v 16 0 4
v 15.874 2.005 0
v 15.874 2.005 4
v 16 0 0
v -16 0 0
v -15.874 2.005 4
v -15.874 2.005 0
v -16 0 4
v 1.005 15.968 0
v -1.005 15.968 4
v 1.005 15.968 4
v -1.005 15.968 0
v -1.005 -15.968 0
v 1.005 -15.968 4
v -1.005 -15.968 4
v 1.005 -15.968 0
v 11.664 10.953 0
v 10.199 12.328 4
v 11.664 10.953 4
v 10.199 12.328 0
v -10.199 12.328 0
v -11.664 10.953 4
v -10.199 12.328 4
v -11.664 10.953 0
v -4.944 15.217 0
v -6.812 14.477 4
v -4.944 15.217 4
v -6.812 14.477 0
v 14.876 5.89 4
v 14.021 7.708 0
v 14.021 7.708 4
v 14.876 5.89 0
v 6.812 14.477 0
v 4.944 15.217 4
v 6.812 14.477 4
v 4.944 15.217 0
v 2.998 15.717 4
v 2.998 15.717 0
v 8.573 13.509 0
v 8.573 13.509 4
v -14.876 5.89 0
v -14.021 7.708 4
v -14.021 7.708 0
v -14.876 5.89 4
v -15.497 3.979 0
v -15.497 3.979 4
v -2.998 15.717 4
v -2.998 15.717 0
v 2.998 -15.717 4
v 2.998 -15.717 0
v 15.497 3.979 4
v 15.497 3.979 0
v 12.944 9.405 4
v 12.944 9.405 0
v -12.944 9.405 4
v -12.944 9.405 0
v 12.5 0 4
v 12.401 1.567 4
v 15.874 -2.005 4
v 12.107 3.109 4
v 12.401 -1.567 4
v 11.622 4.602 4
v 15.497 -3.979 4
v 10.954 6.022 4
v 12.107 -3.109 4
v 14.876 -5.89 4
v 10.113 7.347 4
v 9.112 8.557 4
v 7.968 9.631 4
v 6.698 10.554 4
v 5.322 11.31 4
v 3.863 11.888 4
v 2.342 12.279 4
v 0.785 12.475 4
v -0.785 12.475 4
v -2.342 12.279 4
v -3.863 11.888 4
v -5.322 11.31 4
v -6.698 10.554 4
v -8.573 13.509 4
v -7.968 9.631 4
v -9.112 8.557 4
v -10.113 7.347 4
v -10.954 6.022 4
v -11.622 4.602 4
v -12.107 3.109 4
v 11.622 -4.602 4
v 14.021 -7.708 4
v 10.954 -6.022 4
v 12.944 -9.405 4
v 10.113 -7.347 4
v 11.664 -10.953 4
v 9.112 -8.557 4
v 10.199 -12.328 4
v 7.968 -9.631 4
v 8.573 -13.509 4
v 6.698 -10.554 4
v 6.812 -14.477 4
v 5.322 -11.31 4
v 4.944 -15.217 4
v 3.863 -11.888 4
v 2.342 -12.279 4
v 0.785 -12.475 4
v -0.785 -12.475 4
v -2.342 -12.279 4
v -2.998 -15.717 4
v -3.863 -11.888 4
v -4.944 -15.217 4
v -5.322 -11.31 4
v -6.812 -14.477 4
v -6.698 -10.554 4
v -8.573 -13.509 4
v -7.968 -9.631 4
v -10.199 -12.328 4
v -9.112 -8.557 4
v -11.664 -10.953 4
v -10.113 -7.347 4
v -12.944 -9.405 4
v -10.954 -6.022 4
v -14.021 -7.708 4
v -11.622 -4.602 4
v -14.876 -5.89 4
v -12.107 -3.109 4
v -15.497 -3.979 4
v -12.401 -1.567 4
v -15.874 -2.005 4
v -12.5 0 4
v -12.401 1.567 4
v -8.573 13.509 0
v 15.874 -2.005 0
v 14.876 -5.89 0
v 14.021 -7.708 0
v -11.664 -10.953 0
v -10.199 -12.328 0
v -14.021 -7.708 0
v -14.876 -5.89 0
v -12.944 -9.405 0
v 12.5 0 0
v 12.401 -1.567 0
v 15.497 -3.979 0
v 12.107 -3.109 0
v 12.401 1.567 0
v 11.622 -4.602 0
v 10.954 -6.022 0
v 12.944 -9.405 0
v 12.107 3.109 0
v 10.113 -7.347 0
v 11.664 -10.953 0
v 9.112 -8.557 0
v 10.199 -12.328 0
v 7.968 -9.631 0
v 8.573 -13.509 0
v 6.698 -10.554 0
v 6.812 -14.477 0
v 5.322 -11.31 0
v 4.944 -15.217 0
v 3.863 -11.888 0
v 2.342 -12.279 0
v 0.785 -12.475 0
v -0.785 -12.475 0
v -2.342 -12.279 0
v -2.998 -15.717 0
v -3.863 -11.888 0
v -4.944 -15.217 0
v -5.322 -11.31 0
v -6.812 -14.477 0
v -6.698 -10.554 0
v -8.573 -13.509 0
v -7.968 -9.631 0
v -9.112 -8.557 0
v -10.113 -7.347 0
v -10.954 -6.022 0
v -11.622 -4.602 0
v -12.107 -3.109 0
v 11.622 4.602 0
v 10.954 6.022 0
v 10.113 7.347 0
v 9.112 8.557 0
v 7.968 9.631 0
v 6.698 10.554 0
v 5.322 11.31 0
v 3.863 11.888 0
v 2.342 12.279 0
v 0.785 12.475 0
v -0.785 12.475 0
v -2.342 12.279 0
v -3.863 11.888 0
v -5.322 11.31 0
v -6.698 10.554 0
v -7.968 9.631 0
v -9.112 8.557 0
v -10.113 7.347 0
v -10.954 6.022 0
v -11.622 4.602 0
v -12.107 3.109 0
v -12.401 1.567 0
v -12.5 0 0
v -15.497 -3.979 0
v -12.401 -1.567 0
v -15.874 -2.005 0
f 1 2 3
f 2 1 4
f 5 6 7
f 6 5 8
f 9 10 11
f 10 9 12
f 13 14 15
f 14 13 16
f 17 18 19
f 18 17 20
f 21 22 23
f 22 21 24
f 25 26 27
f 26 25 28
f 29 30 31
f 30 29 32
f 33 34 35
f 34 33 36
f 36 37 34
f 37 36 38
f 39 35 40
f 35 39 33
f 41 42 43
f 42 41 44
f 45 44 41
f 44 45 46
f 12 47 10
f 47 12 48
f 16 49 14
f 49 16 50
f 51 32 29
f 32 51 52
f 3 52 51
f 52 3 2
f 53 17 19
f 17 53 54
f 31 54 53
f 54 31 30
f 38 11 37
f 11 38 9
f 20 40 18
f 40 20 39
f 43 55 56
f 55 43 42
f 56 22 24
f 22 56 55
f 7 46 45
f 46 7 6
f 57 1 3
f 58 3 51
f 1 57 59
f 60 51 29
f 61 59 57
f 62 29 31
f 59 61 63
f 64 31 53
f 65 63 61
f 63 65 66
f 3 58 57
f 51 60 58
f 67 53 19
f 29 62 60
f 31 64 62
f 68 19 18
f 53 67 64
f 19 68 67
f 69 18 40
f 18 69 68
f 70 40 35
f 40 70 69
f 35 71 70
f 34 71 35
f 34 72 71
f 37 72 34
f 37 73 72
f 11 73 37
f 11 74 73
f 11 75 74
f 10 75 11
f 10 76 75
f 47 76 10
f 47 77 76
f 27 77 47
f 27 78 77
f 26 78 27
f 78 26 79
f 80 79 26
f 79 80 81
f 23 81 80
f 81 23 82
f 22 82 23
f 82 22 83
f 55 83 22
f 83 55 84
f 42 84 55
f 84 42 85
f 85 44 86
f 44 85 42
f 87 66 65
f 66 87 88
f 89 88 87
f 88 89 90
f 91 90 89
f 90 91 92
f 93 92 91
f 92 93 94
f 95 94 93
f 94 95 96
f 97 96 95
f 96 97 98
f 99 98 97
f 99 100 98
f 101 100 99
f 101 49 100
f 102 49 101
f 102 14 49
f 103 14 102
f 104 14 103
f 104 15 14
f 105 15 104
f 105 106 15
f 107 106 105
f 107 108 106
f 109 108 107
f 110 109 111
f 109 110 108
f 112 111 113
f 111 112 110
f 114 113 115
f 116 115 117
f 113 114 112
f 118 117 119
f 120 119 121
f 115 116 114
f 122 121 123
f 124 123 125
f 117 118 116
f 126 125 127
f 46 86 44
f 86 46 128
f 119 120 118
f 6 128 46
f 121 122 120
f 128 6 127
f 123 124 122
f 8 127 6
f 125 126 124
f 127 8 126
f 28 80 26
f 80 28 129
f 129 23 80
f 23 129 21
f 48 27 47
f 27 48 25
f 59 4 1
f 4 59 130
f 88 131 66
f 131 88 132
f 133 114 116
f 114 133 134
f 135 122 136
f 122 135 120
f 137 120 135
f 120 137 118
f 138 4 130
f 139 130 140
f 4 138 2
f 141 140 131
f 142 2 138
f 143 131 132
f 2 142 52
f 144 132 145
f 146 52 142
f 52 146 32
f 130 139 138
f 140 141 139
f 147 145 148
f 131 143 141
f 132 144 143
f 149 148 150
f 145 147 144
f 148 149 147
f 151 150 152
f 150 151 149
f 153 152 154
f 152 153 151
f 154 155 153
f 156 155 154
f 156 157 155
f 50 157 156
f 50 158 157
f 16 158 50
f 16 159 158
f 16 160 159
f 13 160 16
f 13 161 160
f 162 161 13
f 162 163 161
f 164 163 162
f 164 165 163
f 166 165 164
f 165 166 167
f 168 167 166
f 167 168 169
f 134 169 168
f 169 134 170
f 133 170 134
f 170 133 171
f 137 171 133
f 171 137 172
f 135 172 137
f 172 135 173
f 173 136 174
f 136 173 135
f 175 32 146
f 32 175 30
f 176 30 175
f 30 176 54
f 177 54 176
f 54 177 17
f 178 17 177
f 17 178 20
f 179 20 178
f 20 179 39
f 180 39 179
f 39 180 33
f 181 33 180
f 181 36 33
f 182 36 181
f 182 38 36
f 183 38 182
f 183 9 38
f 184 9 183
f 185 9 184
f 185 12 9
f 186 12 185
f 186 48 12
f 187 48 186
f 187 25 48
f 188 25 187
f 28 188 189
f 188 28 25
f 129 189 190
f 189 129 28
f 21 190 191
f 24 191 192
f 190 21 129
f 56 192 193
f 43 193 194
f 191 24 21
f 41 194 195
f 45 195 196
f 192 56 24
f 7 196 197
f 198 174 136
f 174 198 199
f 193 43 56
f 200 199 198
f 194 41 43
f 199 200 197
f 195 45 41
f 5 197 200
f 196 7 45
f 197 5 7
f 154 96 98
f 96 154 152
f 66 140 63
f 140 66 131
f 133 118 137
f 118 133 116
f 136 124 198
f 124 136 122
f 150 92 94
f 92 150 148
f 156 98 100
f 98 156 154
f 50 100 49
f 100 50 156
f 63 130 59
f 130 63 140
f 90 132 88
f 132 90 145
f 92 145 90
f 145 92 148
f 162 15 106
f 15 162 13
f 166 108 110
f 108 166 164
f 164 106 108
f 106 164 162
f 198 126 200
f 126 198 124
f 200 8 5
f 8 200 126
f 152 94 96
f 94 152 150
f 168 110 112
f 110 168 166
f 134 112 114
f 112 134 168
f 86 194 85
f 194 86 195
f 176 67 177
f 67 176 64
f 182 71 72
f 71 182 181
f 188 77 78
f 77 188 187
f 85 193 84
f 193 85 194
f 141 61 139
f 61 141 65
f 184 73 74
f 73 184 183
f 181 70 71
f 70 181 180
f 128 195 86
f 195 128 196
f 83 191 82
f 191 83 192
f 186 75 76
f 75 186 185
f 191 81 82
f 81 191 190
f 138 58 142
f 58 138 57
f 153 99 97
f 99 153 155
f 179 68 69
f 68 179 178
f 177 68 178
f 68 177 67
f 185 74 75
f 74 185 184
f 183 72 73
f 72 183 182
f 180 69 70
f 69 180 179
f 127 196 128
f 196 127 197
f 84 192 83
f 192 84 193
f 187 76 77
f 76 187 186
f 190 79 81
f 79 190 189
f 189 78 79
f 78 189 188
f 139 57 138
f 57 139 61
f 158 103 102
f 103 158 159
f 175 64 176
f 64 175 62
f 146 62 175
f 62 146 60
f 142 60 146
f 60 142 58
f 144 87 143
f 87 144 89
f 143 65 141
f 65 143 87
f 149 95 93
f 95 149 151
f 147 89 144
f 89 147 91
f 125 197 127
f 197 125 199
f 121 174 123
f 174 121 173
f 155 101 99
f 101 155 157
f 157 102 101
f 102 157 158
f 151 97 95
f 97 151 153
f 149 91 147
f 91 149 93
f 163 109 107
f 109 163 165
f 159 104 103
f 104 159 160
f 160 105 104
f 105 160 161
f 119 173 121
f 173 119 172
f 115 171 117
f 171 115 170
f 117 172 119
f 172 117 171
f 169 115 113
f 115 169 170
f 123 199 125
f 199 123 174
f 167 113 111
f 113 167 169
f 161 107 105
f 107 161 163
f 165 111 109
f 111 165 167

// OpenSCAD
$fn = 50;


difference() {
	union() {
		cylinder(h = 4, r = 16.0000000000);
	}
	union() {
		cylinder(h = 4, r = 12.5000000000);
	}
}
